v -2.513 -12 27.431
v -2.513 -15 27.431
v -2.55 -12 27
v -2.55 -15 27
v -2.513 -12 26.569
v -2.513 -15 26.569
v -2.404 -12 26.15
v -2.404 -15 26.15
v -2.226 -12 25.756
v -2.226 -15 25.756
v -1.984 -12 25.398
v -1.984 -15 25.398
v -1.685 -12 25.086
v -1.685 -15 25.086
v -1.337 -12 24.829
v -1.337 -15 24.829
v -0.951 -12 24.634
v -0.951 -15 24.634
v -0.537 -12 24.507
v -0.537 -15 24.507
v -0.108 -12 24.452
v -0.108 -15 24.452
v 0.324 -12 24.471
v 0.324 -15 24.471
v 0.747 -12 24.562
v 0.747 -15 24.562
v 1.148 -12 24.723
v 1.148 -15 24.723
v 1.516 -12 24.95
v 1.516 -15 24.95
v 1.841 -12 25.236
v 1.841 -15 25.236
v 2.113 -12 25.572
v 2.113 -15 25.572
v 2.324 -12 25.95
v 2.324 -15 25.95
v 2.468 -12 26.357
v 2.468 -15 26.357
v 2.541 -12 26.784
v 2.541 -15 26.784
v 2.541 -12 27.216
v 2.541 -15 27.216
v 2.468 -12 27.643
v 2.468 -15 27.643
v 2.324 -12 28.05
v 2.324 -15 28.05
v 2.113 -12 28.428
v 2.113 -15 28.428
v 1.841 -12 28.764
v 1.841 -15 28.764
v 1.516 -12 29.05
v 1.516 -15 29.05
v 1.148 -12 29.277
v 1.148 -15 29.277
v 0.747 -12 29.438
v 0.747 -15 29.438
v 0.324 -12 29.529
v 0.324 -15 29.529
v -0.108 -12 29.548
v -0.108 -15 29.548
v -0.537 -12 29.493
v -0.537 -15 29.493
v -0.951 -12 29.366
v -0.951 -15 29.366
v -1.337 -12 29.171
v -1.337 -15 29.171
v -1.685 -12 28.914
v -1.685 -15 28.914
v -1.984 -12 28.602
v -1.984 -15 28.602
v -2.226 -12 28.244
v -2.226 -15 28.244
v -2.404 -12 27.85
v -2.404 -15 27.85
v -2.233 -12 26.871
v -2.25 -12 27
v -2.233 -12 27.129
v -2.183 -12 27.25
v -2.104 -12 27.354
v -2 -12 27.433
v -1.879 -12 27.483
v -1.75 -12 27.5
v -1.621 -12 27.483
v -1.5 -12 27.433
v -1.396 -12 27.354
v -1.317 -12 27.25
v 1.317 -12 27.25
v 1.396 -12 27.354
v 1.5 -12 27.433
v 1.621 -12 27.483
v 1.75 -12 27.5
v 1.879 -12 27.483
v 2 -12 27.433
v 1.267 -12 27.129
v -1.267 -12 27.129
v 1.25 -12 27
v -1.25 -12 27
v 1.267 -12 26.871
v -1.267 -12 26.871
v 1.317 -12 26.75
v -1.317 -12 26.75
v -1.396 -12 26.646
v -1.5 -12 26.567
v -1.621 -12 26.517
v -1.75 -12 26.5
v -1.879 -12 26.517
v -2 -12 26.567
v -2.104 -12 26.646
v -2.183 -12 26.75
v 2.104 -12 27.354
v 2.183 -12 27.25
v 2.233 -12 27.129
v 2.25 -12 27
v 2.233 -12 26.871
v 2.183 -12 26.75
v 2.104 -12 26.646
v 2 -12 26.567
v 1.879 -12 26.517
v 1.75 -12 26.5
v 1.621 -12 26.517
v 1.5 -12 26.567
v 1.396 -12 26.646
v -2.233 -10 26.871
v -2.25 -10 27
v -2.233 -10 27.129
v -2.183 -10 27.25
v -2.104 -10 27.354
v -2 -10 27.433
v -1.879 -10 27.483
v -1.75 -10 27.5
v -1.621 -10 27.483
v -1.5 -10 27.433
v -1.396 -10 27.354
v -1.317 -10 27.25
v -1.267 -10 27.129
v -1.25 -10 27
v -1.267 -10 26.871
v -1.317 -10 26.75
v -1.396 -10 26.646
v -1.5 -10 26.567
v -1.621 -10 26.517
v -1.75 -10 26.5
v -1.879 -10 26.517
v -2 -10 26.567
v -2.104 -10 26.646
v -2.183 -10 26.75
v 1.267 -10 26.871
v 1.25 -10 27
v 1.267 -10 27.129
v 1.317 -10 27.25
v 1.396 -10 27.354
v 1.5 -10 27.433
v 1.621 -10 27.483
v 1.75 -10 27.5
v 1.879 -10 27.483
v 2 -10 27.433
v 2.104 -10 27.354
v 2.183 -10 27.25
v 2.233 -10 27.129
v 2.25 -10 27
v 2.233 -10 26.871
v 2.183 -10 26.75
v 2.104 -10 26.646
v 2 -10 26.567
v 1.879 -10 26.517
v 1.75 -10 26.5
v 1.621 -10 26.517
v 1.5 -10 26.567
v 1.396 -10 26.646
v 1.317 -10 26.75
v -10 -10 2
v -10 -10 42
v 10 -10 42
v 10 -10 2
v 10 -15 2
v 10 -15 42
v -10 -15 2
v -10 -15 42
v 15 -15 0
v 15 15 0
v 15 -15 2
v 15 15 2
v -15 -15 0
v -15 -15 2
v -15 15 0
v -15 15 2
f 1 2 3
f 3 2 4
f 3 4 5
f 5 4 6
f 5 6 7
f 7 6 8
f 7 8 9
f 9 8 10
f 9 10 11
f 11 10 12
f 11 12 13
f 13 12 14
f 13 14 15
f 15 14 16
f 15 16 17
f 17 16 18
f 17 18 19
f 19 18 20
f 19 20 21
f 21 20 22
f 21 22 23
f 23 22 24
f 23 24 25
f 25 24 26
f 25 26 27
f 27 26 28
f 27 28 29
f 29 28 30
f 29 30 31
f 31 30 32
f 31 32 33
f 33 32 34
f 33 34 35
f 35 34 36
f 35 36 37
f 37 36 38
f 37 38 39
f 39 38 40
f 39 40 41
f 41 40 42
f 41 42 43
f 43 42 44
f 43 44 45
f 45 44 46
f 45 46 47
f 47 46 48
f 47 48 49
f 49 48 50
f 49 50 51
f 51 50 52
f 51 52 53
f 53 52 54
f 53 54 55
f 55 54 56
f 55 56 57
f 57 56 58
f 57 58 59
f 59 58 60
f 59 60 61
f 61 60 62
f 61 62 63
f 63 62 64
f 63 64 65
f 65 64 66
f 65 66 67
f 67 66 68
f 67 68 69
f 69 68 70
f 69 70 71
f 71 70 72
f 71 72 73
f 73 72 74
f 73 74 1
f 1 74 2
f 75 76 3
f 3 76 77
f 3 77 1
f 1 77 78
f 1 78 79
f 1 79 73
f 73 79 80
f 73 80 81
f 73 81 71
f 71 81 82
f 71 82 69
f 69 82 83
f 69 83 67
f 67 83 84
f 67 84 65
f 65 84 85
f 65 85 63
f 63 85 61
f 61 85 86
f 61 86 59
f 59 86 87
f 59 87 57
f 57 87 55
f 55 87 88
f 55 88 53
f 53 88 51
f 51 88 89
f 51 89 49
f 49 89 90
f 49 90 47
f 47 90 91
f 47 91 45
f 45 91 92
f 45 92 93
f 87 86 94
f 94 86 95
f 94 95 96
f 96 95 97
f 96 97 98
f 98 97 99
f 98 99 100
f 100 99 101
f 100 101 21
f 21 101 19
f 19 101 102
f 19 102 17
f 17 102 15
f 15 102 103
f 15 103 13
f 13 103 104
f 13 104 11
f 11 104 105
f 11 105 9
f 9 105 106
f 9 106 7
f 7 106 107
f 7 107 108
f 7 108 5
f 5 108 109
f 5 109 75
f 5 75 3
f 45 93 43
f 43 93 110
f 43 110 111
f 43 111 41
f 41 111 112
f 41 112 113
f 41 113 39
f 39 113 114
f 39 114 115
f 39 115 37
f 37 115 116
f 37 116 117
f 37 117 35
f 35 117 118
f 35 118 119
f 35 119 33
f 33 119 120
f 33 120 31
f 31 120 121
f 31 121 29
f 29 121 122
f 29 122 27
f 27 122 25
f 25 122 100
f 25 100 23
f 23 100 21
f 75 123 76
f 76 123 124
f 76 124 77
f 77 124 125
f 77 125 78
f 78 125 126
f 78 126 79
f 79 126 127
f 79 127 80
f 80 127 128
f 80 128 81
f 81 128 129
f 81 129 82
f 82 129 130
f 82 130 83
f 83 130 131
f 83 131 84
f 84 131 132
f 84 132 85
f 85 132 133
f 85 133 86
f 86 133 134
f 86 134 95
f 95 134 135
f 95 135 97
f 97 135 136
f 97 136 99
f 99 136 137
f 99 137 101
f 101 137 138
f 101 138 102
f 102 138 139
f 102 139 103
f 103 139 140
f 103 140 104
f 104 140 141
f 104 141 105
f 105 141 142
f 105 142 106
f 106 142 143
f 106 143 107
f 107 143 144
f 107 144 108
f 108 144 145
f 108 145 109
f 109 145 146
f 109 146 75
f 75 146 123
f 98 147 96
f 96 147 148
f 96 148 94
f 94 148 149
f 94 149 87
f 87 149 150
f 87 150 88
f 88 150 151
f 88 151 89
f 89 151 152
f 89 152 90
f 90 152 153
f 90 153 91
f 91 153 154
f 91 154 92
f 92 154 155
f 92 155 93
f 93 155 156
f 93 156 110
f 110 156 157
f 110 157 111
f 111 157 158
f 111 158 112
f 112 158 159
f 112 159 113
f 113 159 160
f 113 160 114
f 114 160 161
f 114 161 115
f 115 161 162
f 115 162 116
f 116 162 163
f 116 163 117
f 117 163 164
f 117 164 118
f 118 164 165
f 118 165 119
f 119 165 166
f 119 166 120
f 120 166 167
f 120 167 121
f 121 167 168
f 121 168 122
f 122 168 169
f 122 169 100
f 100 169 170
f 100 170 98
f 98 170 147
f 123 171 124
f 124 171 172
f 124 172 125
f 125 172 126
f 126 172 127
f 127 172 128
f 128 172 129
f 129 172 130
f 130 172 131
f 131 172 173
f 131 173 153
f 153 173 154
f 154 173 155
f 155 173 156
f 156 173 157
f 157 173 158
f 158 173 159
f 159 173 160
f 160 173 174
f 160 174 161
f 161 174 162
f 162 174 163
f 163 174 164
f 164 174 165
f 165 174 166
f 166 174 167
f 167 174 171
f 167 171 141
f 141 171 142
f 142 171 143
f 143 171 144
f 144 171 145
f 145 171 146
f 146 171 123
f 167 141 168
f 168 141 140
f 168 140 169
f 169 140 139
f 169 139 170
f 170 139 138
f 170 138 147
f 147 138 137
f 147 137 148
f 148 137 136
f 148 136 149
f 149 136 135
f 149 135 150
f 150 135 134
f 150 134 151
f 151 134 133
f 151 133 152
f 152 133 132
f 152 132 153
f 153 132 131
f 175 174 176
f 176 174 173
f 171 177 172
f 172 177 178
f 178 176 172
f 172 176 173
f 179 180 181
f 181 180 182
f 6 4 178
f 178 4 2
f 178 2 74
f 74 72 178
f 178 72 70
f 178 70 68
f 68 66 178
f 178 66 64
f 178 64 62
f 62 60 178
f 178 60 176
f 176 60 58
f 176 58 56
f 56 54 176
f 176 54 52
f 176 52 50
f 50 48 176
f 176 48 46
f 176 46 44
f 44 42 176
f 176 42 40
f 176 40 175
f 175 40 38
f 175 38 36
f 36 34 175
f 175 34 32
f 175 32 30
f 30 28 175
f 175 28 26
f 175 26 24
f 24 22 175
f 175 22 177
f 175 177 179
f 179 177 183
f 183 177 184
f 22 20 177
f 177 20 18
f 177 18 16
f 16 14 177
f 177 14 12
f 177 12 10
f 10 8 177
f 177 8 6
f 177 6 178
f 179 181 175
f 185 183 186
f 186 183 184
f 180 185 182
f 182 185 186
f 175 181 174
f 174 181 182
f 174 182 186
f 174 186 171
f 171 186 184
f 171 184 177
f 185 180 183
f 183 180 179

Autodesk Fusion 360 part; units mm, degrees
sketch "Sketch1" plane through (0, 0, 0) normal (0, 0, 1) x (1, 0, 0)
  line L0 (15, -15) -> (-15, -15)
  line L1 (-15, -15) -> (-15, 15)
  line L2 (-15, 15) -> (15, 15)
  line L3 (15, 15) -> (15, -15)
  line L4 (15, -15) -> (-15, 15) construction
  line L5 (-15, -15) -> (15, 15) construction
  dimension "d1" = 30
  dimension "d2" = 30
extrude "Extrude1" add sketch "Sketch1" along normal blind 2 makes body 1
sketch "Sketch2" plane through (0, 0, 2) normal (0, 0, 1) x (-1, 0, 0)
  line L0 (-15, -15) -> (15, -15)
  line L1 (15, -15) -> (15, 15)
  line L2 (15, 15) -> (-15, 15)
  line L3 (-15, 15) -> (-15, -15)
  line L4 (15, 15) -> (10, 15) construction
  line L5 (10, 15) -> (10, 10) construction
  line L6 (10, 10) -> (15, 10) construction
  line L7 (15, 10) -> (15, 15) construction
  line L8 (-15, 15) -> (-10, 15) construction
  line L9 (-10, 15) -> (-10, 10) construction
  line L10 (-10, 10) -> (-15, 10) construction
  line L11 (-15, 10) -> (-15, 15) construction
  line L12 (10, 15) -> (-10, 15)
  line L13 (-10, 15) -> (-10, 10)
  line L14 (-10, 10) -> (10, 10)
  line L15 (10, 10) -> (10, 15)
  dimension "d5" = 5
  dimension "d6" = 5
  dimension "d7" = 5
  dimension "d8" = 5
extrude "Extrude2" add sketch "Sketch2" along normal blind 40 contours L2 L12 L13 L14 L15 bodies 1
sketch "Sketch3" plane through (0, -15, 0) normal (0, -1, 0) x (1, 0, 0)
  line L0 (-15, 0) -> (15, 0)
  line L1 (15, 0) -> (15, 2)
  line L2 (15, 2) -> (10, 2)
  line L3 (10, 2) -> (10, 42)
  line L4 (10, 42) -> (-10, 42)
  line L5 (-10, 42) -> (-10, 2)
  line L6 (-10, 2) -> (-15, 2)
  line L7 (-15, 2) -> (-15, 0)
  line L8 (10, 2) -> (0, 2) construction
  line L9 (0, 2) -> (0, 27) construction
  line L10 (0, 27) -> (10, 27) construction
  line L11 (10, 27) -> (10, 2) construction
  circle A0 centre (0, 27) radius 2.55
  dimension "d11" = 10
  dimension "d12" = 25
  dimension "d13" = 5.1
sketch "Sketch4" plane through (0, -15, 0) normal (0, -1, 0) x (1, 0, 0)
  line L0 (-15, 0) -> (15, 0)
  line L1 (15, 0) -> (15, 2)
  line L2 (15, 2) -> (10, 2)
  line L3 (10, 2) -> (10, 42)
  line L4 (10, 42) -> (-10, 42)
  line L5 (-10, 42) -> (-10, 2)
  line L6 (-10, 2) -> (-15, 2)
  line L7 (-15, 2) -> (-15, 0)
  line L8 (0, 27) -> (1.75, 27) construction
  line L9 (0, 27) -> (-1.75, 27) construction
  circle A0 centre (1.75, 27) radius 0.5
  circle A1 centre (-1.75, 27) radius 0.5
  point P0 (0, 27)
  dimension "d14" = 1.75
  dimension "d15" = 1.75
  dimension "d16" = 1
  dimension "d17" = 1
extrude "Extrude3" cut sketch "Sketch4" against normal up to surface (5 mm away) contours A0 | A1 bodies 1
extrude "Extrude4" cut sketch "Sketch3" against normal blind 3 contours A0 bodies 1
copy_body "Body->Comp1" bodies 1 removing the originals makes body 2 in component "Detector_Holder"
component "Detector_Holder" placed x (1, 0, 0) y (0, 1, 0) z (0, 0, 1) at (0, 0, 0)
